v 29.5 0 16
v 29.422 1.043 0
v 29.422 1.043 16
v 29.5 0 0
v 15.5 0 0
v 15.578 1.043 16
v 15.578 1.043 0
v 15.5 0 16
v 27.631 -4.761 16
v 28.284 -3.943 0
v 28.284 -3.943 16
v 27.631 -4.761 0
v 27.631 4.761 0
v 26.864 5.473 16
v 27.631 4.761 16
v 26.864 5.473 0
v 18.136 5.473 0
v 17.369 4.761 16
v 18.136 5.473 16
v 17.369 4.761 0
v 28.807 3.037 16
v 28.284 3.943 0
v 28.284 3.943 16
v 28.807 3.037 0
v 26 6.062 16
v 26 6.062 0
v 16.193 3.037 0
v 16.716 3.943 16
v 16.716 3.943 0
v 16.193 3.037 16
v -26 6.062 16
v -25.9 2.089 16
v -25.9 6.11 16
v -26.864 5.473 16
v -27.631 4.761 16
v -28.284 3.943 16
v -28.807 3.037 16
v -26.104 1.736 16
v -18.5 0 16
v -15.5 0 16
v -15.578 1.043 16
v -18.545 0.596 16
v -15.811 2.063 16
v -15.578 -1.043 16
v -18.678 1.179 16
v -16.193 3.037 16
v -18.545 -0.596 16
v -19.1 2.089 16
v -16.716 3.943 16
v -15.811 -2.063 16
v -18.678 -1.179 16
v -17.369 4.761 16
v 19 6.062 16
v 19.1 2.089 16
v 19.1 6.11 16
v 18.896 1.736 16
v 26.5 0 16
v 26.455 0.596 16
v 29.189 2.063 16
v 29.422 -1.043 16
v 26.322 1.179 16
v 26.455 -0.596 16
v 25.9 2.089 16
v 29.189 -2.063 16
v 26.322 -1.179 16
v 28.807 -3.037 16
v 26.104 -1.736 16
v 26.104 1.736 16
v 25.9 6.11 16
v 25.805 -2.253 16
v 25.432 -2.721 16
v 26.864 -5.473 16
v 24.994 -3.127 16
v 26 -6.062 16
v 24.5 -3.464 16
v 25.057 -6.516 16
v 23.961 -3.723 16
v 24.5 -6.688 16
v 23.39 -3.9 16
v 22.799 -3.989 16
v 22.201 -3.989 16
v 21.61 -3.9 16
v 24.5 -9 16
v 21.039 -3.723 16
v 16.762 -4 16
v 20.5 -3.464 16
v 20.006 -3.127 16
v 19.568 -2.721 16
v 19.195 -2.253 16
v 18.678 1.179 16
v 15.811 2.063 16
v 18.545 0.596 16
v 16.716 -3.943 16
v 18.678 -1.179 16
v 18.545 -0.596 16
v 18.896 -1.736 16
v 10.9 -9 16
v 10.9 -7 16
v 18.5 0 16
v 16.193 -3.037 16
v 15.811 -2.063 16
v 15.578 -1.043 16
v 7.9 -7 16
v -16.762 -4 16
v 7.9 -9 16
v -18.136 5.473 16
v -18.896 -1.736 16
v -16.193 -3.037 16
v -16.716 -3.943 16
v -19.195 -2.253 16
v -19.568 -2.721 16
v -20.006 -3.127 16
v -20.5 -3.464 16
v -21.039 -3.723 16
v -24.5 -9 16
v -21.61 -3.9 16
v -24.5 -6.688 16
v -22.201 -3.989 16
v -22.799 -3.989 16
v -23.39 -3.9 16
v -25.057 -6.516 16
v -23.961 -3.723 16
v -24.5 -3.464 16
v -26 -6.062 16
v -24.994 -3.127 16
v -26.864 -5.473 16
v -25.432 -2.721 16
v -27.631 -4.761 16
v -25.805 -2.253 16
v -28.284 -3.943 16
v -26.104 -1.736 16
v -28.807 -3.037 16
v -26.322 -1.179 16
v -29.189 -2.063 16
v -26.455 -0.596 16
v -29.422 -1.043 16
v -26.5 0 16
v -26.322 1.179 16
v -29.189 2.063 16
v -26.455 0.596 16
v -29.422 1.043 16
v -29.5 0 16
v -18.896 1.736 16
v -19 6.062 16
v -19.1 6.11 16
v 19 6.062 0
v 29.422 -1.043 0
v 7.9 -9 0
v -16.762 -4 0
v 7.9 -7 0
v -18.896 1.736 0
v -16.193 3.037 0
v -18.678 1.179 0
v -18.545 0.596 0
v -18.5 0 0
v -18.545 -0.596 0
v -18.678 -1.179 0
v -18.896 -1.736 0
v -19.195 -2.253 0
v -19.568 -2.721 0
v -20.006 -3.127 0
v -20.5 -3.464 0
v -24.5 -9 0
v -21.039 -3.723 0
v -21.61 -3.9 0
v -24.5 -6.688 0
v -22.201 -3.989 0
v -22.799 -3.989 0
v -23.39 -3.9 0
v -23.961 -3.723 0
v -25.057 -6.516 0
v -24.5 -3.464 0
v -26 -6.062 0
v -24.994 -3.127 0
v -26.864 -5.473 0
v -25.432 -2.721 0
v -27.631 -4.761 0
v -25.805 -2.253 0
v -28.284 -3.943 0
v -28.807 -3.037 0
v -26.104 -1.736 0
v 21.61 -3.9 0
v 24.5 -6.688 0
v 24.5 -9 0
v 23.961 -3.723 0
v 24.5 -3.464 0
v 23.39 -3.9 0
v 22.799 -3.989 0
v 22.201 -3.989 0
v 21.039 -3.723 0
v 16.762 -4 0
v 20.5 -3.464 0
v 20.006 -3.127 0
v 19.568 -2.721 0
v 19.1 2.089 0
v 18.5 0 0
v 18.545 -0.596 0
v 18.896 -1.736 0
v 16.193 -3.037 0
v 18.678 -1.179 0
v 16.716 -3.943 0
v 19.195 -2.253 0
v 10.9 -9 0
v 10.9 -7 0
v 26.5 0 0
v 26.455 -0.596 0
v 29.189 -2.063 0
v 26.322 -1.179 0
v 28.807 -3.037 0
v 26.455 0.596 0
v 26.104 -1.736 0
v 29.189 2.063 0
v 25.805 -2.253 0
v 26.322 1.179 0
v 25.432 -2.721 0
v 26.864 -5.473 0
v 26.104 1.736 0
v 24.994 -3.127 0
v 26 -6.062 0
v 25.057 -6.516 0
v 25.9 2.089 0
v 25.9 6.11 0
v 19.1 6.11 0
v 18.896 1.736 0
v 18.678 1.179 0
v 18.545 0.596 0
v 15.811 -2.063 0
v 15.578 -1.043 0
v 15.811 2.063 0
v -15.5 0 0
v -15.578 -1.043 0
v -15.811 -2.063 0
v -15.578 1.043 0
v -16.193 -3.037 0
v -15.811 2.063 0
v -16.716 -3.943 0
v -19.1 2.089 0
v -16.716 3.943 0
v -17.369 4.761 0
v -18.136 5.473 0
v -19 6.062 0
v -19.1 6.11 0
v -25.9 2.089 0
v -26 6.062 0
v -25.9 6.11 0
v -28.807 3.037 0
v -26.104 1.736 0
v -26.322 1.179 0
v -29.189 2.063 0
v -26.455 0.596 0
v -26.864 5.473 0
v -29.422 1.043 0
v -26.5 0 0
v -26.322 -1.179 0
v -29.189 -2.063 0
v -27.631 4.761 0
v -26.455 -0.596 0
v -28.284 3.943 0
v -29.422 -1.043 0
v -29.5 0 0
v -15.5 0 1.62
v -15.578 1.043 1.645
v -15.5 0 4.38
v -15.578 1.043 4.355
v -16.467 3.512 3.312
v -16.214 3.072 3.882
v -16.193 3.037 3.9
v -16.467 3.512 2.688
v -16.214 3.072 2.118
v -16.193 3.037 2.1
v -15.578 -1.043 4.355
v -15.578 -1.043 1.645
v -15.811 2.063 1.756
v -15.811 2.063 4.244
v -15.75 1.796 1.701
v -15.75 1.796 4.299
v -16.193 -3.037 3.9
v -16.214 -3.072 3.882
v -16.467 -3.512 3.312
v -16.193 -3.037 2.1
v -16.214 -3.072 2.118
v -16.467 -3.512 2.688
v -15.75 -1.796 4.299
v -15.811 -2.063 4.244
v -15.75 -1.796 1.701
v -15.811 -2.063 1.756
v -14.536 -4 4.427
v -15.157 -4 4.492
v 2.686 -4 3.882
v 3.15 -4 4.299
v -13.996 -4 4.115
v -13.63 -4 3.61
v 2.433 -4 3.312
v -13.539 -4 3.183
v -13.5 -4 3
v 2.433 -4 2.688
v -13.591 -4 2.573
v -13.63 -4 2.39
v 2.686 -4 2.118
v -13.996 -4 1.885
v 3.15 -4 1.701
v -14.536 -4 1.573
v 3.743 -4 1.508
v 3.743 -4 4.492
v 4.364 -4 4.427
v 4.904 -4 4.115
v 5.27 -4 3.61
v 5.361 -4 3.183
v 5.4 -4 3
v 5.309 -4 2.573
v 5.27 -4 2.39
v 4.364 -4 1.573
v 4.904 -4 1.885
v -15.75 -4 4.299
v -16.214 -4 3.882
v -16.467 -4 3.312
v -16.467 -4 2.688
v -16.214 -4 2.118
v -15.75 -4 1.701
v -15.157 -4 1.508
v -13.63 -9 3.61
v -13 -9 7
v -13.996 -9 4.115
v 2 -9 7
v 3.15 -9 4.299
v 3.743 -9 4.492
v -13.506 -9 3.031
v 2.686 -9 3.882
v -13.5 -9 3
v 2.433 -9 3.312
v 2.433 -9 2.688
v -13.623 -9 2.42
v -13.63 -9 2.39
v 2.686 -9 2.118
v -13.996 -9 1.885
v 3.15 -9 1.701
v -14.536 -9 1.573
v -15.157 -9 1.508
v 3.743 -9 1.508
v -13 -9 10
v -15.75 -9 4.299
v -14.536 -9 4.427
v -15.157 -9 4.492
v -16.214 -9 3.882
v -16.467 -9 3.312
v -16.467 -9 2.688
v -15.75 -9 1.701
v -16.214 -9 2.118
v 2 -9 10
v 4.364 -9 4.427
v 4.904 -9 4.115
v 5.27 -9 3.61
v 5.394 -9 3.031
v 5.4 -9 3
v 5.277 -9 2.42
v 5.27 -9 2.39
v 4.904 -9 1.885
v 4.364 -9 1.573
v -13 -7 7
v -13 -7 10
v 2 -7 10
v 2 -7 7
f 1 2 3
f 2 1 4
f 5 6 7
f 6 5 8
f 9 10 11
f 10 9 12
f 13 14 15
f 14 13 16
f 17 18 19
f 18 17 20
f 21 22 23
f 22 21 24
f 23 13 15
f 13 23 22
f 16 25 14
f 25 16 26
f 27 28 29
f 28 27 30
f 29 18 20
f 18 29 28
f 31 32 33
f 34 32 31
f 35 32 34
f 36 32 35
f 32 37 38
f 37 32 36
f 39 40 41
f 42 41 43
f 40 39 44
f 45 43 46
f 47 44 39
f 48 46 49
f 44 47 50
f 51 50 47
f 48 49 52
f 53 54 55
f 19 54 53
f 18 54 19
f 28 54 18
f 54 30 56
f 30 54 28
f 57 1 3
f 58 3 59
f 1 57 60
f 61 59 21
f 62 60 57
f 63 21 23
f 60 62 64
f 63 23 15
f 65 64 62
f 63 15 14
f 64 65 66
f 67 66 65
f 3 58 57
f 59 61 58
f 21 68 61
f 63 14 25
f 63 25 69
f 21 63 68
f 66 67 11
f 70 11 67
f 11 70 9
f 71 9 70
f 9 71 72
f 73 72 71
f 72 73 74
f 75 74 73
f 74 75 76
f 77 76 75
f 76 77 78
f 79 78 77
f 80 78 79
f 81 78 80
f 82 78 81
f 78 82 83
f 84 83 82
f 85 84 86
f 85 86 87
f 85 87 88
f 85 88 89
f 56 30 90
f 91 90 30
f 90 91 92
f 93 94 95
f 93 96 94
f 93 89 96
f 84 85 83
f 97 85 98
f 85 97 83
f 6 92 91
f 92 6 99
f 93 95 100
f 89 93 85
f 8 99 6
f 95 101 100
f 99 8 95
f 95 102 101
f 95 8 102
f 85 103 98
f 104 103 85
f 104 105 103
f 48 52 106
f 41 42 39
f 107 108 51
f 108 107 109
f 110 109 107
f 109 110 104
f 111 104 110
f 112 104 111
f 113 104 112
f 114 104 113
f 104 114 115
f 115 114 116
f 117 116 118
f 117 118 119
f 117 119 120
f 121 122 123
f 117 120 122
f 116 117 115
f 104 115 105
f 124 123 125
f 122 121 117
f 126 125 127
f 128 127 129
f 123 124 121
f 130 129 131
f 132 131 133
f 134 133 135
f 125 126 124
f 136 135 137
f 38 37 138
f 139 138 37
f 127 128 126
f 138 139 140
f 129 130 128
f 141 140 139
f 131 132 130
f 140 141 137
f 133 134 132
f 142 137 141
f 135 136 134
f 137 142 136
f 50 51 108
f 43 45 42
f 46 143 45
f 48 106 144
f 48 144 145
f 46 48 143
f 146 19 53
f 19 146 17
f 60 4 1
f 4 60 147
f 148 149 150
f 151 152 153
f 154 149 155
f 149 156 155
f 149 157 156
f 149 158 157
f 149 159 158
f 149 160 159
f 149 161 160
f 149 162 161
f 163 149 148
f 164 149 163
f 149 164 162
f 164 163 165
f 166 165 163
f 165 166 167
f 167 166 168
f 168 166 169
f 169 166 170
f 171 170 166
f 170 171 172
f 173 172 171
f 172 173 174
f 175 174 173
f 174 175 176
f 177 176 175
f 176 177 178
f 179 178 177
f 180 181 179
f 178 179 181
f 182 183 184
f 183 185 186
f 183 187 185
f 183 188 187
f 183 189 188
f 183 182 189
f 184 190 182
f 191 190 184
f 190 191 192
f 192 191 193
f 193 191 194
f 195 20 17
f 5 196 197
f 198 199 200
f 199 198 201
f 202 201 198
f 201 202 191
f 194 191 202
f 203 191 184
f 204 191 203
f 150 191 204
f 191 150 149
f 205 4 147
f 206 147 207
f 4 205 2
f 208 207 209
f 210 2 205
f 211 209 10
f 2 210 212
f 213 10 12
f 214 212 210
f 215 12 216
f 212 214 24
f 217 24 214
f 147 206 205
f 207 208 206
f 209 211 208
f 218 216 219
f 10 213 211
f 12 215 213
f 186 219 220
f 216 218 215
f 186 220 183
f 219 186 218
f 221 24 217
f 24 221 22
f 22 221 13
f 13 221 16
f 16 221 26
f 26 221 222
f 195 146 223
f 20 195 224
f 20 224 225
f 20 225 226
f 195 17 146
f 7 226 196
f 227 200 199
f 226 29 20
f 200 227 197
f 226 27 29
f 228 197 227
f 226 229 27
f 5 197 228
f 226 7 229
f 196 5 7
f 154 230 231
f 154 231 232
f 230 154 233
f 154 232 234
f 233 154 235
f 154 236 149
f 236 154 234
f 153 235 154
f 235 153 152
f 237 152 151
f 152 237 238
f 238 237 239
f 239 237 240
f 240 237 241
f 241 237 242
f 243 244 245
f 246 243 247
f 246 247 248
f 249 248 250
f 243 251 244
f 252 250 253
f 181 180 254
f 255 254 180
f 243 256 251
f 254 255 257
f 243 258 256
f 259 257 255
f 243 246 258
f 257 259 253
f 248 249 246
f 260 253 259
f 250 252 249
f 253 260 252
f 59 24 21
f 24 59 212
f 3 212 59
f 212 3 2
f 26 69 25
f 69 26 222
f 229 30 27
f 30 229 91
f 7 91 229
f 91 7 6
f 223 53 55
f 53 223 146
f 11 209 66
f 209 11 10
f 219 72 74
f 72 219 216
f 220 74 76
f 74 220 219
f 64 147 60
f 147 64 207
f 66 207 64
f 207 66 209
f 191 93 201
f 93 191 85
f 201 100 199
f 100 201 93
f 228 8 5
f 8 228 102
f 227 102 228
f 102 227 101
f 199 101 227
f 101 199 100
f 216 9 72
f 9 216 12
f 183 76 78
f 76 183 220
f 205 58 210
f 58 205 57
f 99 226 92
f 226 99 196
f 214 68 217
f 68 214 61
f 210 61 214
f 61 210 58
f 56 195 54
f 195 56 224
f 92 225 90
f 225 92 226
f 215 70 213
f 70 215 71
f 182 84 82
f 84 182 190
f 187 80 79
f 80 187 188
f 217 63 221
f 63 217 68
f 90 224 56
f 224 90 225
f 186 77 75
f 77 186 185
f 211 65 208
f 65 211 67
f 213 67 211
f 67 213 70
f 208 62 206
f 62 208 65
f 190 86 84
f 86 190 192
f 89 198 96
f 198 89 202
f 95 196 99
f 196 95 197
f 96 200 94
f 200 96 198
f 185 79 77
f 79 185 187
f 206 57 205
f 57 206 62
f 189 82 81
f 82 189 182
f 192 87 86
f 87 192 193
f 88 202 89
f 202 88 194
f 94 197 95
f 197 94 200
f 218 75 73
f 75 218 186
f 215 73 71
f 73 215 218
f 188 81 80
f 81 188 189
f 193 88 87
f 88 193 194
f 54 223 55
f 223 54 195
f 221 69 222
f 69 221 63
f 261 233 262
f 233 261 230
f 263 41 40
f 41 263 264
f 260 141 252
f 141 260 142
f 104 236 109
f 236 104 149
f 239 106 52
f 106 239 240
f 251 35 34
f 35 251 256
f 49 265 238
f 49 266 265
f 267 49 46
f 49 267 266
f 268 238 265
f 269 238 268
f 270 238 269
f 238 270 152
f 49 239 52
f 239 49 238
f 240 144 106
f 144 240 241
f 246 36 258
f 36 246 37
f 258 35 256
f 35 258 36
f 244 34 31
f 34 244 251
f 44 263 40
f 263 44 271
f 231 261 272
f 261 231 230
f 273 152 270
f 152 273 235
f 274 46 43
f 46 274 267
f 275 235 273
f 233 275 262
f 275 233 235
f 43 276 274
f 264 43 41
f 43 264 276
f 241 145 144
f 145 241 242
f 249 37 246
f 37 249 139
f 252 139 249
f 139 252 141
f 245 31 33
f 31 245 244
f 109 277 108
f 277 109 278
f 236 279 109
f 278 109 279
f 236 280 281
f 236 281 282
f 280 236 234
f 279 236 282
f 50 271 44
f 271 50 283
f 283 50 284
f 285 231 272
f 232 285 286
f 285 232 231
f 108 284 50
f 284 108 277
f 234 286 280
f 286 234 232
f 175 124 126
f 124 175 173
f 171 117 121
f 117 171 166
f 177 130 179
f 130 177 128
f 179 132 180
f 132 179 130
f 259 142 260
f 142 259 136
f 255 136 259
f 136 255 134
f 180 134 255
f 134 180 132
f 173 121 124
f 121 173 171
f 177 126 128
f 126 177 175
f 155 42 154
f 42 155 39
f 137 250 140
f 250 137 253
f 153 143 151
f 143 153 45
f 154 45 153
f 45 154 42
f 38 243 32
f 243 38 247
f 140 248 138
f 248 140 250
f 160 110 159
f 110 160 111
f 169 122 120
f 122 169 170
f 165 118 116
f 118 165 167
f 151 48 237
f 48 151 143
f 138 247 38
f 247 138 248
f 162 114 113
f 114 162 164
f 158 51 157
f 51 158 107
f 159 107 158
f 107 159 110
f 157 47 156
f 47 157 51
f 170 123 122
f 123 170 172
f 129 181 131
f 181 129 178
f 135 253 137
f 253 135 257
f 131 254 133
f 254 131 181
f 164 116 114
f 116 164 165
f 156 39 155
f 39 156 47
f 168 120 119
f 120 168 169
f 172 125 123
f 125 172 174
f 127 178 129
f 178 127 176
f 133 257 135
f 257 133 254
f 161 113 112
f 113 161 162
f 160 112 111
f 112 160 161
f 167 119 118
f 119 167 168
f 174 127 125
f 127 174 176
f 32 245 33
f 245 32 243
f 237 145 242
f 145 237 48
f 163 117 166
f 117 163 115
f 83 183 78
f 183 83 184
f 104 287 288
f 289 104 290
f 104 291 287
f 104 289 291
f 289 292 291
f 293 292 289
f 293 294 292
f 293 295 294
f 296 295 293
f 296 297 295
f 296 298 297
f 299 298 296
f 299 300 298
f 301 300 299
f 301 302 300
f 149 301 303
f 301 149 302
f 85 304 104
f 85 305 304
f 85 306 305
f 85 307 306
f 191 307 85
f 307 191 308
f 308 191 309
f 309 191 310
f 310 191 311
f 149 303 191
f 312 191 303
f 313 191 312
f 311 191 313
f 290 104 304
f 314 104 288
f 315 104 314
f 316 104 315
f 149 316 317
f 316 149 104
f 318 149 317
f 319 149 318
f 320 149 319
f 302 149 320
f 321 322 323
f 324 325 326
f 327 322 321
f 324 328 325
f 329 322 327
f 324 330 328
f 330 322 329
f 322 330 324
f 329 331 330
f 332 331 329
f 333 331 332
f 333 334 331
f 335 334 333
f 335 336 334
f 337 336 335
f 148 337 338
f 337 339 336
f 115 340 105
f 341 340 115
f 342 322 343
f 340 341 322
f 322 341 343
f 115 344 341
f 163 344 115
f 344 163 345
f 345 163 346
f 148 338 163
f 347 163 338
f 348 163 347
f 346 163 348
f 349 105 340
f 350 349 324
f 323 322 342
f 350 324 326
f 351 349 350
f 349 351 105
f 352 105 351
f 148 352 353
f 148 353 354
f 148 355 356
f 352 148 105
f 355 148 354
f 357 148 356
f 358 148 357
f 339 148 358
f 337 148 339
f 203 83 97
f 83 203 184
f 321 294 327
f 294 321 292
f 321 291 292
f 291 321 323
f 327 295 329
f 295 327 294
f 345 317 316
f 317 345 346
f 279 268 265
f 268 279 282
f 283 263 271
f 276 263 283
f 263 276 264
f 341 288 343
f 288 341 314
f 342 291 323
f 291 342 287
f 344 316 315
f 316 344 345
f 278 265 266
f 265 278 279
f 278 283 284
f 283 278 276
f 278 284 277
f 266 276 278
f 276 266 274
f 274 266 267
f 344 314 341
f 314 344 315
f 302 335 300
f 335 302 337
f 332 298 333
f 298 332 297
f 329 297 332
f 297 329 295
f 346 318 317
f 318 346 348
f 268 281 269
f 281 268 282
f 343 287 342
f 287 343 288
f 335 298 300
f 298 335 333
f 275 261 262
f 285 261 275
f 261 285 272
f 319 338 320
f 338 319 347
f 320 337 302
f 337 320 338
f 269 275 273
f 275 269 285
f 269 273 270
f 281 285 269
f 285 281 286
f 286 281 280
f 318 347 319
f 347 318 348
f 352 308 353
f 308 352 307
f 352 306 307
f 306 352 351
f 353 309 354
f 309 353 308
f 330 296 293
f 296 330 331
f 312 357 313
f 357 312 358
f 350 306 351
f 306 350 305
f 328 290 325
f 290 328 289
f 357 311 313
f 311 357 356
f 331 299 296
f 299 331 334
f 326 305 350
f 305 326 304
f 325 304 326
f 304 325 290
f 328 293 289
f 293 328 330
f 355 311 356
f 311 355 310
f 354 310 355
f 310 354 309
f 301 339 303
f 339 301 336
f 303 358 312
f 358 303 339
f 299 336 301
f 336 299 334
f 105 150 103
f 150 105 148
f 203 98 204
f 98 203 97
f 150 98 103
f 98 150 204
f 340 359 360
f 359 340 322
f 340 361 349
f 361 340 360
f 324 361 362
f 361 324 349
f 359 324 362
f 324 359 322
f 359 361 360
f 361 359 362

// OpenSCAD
rod_d=8; 
rod_spacing=45; // <------------------------------------------
mount_hole_spacing=18.9;
mount_hole_d=3;
mount_nut_d=6.5;
// How much to lift stop mount
stop_offset=0;
nut=6;
thick=16;
wall=2;
mount_plate_width=mount_hole_d+wall;
mount_plate_length=rod_spacing+4;

difference() {
    union() {
        translate([rod_spacing/2,0,0]) rod_snap(rod_d, rod_d+wall*3, thick);
        translate([-rod_spacing/2,0,0]) rod_snap(rod_d, rod_d+wall*3, thick);
        translate([-rod_spacing/2-2,-mount_plate_width-rod_d/2,0]) cube([mount_plate_length,mount_plate_width,thick]);
    }
    // Mounting holes
    translate([-20+5, 0, 3]) rotate([90, 0, 0]) cylinder(d=mount_hole_d, h=20, center=true, $fn=15);
    translate([-20+5+mount_hole_spacing, 0, 3]) rotate([90, 0, 0]) cylinder(d=mount_hole_d, h=20, center=true, $fn=15);
    // Space for the welds
    translate([-20+5+mount_hole_spacing+4, -9, 0]) cube([3, 2, thick]);
    translate([-20+5+2, -9, 7]) cube([15, 2, 3]);
}

module rod_snap(id, od, h) {
    difference() {
        cylinder(d=od, h=h, $fn=od*3);
        cylinder(d=id, h=h, $fn=od*3);
        translate([-id*0.85/2, 0, 0]) cube([id*0.85, od, h]);
    }
}
